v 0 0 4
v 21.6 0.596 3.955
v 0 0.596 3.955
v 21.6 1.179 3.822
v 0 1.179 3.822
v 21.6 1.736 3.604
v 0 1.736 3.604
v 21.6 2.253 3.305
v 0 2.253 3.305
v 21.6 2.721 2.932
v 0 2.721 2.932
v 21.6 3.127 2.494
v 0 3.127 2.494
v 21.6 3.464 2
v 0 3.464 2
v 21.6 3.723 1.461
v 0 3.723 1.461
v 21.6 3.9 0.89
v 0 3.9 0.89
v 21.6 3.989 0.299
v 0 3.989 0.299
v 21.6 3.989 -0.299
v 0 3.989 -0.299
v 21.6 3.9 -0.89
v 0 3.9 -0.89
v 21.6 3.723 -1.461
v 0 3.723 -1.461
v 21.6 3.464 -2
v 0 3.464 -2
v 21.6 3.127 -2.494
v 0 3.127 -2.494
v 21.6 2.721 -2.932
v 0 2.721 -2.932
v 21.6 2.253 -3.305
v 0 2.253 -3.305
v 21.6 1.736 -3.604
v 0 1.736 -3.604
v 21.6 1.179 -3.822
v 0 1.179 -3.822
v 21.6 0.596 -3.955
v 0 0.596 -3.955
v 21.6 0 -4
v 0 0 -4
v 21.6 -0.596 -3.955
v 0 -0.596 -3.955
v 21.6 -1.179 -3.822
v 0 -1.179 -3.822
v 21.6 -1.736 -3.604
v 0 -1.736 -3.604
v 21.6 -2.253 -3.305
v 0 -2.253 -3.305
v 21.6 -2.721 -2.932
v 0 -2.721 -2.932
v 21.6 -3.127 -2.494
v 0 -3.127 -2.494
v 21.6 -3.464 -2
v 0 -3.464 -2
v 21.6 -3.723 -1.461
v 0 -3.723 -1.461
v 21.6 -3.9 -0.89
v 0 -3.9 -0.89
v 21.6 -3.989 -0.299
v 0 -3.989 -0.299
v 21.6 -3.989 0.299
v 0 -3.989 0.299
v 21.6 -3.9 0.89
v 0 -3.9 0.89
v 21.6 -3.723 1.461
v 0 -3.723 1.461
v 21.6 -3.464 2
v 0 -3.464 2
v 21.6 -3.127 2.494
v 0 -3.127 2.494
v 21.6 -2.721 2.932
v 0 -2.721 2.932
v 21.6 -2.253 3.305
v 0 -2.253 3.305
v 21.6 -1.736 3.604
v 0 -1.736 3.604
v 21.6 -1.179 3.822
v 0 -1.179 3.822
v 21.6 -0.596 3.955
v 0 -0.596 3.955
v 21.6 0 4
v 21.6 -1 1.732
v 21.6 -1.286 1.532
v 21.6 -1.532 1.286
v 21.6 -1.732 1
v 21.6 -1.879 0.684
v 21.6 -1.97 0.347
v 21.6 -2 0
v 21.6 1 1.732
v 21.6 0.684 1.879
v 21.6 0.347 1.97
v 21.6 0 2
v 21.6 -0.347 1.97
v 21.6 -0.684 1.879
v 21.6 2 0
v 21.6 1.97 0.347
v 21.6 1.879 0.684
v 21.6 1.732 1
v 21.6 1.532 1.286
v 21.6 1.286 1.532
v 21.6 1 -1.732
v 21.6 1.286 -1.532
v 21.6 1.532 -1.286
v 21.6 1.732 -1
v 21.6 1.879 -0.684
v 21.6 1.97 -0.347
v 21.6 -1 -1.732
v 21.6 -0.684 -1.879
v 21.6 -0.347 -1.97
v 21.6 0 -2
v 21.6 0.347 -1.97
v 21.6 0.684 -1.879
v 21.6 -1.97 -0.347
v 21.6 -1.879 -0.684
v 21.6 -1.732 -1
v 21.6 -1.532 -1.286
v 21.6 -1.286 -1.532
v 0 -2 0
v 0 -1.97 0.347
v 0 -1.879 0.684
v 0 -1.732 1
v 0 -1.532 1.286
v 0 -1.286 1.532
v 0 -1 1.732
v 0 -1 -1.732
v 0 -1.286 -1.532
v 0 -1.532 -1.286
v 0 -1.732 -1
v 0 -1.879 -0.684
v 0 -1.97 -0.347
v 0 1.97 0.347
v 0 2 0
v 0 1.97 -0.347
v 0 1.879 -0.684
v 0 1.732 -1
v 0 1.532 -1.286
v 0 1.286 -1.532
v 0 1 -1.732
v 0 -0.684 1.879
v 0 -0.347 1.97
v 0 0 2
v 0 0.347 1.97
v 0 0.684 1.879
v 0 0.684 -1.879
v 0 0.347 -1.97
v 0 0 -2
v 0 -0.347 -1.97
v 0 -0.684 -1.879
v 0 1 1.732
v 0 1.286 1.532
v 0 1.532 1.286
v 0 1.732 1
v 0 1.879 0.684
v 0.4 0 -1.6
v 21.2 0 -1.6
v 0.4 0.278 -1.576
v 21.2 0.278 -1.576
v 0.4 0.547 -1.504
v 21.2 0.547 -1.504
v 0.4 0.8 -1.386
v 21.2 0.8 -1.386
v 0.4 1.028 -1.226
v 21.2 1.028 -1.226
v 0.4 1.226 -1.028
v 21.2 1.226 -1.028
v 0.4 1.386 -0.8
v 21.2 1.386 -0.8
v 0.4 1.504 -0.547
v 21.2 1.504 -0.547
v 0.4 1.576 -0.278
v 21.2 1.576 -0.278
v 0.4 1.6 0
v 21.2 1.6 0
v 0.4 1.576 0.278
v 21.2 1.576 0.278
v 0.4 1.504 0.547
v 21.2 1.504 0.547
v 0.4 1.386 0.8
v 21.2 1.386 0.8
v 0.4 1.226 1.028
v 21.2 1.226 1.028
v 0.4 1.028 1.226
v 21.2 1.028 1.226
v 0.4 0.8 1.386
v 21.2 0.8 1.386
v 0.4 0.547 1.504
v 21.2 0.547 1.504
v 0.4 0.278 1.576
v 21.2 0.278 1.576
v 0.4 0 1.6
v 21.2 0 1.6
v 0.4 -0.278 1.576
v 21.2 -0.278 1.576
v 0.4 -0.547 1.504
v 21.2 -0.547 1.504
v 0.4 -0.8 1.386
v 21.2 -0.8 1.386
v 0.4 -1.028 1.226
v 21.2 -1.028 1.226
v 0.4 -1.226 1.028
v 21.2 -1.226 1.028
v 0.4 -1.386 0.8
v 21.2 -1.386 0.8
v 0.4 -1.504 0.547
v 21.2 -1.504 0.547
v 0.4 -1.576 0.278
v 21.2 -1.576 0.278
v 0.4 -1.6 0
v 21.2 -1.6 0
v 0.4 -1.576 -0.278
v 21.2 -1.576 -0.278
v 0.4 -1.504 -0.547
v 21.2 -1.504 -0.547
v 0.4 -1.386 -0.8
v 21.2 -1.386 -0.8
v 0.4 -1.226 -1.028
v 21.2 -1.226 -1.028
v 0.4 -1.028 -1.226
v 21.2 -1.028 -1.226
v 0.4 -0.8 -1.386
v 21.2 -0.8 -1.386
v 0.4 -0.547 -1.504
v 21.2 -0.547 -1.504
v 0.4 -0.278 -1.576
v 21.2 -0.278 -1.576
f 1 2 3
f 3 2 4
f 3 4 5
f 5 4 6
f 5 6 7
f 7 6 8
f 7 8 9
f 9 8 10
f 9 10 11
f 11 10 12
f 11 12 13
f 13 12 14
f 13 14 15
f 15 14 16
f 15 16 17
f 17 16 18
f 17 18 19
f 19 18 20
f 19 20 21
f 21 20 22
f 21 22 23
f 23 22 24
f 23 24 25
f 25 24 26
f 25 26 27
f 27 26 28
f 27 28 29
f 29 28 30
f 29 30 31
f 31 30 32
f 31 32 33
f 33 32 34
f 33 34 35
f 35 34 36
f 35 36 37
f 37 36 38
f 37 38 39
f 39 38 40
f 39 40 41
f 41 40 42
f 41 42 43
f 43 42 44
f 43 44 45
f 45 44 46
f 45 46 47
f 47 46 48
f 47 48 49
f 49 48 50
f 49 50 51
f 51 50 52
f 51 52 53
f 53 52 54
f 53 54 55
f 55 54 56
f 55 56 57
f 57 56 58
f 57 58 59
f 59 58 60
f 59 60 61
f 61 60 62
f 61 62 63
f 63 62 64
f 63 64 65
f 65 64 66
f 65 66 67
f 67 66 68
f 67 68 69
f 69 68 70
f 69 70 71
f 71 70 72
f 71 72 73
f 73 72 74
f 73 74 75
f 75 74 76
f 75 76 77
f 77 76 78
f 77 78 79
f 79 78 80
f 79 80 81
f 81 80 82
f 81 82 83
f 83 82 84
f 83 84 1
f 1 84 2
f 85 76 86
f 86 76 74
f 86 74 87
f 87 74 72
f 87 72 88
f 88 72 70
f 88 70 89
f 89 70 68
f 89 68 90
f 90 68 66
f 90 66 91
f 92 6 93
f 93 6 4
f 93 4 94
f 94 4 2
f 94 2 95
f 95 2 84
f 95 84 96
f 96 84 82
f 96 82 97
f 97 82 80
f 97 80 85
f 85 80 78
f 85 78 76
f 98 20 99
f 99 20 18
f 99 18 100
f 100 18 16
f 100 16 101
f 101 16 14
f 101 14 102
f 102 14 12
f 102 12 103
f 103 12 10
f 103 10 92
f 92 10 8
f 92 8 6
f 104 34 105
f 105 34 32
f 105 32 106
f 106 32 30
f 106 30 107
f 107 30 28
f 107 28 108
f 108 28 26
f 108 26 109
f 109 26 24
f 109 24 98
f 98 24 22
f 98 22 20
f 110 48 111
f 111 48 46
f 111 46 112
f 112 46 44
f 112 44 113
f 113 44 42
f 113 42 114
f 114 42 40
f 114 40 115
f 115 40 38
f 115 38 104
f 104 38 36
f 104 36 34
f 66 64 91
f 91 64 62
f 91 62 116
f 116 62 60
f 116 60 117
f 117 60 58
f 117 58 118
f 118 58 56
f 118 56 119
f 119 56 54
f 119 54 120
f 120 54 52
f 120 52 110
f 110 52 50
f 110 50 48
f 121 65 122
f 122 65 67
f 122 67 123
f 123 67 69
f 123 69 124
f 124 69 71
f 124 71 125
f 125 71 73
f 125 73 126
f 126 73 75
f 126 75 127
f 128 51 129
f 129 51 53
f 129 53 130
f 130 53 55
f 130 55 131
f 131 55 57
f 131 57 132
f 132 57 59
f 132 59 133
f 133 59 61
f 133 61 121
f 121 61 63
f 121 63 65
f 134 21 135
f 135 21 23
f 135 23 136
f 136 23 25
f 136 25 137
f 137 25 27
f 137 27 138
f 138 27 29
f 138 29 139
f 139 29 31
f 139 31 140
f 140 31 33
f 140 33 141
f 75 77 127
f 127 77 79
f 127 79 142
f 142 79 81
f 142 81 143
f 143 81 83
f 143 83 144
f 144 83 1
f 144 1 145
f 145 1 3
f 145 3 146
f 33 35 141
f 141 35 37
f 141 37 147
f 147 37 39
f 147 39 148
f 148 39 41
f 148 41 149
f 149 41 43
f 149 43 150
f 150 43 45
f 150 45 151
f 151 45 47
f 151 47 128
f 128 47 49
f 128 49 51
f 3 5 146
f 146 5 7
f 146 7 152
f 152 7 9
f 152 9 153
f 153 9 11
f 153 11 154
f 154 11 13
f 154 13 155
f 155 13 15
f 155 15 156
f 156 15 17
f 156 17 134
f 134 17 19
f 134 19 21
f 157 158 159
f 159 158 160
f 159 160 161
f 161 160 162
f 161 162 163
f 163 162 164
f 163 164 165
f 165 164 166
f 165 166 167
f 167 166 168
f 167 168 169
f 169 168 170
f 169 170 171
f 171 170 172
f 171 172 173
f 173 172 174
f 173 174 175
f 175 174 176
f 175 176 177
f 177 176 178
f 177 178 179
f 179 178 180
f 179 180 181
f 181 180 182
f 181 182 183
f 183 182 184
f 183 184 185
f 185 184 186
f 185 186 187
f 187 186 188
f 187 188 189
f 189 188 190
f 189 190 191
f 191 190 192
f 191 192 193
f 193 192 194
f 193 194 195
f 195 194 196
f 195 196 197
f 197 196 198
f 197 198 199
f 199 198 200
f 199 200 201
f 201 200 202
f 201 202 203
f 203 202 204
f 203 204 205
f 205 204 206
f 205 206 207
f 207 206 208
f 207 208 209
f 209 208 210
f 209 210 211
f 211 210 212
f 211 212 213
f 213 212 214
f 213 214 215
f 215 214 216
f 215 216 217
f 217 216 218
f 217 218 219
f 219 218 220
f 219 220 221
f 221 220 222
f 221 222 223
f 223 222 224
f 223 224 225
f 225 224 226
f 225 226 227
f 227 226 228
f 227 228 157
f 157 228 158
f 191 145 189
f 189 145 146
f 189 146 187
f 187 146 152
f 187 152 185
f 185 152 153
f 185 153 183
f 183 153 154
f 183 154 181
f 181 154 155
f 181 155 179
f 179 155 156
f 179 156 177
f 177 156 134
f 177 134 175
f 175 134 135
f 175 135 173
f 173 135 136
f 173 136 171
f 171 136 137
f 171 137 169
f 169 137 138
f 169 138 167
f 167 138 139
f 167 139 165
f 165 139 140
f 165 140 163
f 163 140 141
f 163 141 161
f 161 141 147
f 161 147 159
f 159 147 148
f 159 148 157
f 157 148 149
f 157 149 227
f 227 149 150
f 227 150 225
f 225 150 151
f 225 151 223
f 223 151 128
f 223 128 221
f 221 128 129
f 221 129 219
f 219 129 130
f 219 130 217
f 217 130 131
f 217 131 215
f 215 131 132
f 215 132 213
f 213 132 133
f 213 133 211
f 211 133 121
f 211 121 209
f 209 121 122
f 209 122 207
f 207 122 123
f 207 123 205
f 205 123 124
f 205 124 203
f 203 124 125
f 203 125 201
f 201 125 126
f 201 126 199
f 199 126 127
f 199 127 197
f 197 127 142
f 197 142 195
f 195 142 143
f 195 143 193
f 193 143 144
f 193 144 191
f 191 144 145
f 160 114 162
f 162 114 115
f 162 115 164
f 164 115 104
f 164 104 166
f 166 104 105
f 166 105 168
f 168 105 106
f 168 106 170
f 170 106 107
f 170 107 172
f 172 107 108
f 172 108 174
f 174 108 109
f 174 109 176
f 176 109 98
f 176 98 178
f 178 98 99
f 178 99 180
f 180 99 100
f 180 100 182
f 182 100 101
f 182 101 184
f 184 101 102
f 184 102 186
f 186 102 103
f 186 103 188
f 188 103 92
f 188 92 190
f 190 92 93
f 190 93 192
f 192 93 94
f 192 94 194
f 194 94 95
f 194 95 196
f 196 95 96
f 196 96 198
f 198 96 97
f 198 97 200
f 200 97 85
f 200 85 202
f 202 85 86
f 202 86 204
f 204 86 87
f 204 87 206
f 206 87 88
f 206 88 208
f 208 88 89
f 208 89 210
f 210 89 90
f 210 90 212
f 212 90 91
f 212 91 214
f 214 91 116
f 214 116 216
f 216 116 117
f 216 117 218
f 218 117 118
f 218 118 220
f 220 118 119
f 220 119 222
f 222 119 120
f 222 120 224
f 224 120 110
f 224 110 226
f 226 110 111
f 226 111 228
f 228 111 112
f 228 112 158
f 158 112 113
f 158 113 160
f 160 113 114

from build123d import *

# Parameters (mm, degrees)
SKIZZE1_R                        = 4
AUFSATZ_LINEAR_AUSTRAGEN1_DEPTH  = 21.6
F_3_2_3_2_DURCHMESSER_BOHRUNG1_D = 3.2
FASE1_SIZE                       = 0.4


with BuildPart() as part:
    # Skizze1 → Aufsatz-Linear austragen1 (new body)
    with BuildSketch(Plane(origin=(0, 0, 0), x_dir=(0, 0, -1), z_dir=(1, 0, 0))):
        with Locations(Location((0, 0, 0), (0, 0, 180))):
            Circle(SKIZZE1_R)
    extrude(amount=AUFSATZ_LINEAR_AUSTRAGEN1_DEPTH)

    # Ø3.2 (3.2) Durchmesser Bohrung1 (through all)
    with Locations(Plane(origin=(21.6, 0, 0), x_dir=(0, 0, -1), z_dir=(1, 0, 0))):
        with Locations((0, 0)):
            Hole(F_3_2_3_2_DURCHMESSER_BOHRUNG1_D / 2)

    # Fase1
    fase1_edges = [part.edges().sort_by_distance(p)[0] for p in [
        (21.6, 0, -1.6),
        (0, 0, -1.6),
    ]]
    chamfer(fase1_edges, length=FASE1_SIZE)


solid = part.part
